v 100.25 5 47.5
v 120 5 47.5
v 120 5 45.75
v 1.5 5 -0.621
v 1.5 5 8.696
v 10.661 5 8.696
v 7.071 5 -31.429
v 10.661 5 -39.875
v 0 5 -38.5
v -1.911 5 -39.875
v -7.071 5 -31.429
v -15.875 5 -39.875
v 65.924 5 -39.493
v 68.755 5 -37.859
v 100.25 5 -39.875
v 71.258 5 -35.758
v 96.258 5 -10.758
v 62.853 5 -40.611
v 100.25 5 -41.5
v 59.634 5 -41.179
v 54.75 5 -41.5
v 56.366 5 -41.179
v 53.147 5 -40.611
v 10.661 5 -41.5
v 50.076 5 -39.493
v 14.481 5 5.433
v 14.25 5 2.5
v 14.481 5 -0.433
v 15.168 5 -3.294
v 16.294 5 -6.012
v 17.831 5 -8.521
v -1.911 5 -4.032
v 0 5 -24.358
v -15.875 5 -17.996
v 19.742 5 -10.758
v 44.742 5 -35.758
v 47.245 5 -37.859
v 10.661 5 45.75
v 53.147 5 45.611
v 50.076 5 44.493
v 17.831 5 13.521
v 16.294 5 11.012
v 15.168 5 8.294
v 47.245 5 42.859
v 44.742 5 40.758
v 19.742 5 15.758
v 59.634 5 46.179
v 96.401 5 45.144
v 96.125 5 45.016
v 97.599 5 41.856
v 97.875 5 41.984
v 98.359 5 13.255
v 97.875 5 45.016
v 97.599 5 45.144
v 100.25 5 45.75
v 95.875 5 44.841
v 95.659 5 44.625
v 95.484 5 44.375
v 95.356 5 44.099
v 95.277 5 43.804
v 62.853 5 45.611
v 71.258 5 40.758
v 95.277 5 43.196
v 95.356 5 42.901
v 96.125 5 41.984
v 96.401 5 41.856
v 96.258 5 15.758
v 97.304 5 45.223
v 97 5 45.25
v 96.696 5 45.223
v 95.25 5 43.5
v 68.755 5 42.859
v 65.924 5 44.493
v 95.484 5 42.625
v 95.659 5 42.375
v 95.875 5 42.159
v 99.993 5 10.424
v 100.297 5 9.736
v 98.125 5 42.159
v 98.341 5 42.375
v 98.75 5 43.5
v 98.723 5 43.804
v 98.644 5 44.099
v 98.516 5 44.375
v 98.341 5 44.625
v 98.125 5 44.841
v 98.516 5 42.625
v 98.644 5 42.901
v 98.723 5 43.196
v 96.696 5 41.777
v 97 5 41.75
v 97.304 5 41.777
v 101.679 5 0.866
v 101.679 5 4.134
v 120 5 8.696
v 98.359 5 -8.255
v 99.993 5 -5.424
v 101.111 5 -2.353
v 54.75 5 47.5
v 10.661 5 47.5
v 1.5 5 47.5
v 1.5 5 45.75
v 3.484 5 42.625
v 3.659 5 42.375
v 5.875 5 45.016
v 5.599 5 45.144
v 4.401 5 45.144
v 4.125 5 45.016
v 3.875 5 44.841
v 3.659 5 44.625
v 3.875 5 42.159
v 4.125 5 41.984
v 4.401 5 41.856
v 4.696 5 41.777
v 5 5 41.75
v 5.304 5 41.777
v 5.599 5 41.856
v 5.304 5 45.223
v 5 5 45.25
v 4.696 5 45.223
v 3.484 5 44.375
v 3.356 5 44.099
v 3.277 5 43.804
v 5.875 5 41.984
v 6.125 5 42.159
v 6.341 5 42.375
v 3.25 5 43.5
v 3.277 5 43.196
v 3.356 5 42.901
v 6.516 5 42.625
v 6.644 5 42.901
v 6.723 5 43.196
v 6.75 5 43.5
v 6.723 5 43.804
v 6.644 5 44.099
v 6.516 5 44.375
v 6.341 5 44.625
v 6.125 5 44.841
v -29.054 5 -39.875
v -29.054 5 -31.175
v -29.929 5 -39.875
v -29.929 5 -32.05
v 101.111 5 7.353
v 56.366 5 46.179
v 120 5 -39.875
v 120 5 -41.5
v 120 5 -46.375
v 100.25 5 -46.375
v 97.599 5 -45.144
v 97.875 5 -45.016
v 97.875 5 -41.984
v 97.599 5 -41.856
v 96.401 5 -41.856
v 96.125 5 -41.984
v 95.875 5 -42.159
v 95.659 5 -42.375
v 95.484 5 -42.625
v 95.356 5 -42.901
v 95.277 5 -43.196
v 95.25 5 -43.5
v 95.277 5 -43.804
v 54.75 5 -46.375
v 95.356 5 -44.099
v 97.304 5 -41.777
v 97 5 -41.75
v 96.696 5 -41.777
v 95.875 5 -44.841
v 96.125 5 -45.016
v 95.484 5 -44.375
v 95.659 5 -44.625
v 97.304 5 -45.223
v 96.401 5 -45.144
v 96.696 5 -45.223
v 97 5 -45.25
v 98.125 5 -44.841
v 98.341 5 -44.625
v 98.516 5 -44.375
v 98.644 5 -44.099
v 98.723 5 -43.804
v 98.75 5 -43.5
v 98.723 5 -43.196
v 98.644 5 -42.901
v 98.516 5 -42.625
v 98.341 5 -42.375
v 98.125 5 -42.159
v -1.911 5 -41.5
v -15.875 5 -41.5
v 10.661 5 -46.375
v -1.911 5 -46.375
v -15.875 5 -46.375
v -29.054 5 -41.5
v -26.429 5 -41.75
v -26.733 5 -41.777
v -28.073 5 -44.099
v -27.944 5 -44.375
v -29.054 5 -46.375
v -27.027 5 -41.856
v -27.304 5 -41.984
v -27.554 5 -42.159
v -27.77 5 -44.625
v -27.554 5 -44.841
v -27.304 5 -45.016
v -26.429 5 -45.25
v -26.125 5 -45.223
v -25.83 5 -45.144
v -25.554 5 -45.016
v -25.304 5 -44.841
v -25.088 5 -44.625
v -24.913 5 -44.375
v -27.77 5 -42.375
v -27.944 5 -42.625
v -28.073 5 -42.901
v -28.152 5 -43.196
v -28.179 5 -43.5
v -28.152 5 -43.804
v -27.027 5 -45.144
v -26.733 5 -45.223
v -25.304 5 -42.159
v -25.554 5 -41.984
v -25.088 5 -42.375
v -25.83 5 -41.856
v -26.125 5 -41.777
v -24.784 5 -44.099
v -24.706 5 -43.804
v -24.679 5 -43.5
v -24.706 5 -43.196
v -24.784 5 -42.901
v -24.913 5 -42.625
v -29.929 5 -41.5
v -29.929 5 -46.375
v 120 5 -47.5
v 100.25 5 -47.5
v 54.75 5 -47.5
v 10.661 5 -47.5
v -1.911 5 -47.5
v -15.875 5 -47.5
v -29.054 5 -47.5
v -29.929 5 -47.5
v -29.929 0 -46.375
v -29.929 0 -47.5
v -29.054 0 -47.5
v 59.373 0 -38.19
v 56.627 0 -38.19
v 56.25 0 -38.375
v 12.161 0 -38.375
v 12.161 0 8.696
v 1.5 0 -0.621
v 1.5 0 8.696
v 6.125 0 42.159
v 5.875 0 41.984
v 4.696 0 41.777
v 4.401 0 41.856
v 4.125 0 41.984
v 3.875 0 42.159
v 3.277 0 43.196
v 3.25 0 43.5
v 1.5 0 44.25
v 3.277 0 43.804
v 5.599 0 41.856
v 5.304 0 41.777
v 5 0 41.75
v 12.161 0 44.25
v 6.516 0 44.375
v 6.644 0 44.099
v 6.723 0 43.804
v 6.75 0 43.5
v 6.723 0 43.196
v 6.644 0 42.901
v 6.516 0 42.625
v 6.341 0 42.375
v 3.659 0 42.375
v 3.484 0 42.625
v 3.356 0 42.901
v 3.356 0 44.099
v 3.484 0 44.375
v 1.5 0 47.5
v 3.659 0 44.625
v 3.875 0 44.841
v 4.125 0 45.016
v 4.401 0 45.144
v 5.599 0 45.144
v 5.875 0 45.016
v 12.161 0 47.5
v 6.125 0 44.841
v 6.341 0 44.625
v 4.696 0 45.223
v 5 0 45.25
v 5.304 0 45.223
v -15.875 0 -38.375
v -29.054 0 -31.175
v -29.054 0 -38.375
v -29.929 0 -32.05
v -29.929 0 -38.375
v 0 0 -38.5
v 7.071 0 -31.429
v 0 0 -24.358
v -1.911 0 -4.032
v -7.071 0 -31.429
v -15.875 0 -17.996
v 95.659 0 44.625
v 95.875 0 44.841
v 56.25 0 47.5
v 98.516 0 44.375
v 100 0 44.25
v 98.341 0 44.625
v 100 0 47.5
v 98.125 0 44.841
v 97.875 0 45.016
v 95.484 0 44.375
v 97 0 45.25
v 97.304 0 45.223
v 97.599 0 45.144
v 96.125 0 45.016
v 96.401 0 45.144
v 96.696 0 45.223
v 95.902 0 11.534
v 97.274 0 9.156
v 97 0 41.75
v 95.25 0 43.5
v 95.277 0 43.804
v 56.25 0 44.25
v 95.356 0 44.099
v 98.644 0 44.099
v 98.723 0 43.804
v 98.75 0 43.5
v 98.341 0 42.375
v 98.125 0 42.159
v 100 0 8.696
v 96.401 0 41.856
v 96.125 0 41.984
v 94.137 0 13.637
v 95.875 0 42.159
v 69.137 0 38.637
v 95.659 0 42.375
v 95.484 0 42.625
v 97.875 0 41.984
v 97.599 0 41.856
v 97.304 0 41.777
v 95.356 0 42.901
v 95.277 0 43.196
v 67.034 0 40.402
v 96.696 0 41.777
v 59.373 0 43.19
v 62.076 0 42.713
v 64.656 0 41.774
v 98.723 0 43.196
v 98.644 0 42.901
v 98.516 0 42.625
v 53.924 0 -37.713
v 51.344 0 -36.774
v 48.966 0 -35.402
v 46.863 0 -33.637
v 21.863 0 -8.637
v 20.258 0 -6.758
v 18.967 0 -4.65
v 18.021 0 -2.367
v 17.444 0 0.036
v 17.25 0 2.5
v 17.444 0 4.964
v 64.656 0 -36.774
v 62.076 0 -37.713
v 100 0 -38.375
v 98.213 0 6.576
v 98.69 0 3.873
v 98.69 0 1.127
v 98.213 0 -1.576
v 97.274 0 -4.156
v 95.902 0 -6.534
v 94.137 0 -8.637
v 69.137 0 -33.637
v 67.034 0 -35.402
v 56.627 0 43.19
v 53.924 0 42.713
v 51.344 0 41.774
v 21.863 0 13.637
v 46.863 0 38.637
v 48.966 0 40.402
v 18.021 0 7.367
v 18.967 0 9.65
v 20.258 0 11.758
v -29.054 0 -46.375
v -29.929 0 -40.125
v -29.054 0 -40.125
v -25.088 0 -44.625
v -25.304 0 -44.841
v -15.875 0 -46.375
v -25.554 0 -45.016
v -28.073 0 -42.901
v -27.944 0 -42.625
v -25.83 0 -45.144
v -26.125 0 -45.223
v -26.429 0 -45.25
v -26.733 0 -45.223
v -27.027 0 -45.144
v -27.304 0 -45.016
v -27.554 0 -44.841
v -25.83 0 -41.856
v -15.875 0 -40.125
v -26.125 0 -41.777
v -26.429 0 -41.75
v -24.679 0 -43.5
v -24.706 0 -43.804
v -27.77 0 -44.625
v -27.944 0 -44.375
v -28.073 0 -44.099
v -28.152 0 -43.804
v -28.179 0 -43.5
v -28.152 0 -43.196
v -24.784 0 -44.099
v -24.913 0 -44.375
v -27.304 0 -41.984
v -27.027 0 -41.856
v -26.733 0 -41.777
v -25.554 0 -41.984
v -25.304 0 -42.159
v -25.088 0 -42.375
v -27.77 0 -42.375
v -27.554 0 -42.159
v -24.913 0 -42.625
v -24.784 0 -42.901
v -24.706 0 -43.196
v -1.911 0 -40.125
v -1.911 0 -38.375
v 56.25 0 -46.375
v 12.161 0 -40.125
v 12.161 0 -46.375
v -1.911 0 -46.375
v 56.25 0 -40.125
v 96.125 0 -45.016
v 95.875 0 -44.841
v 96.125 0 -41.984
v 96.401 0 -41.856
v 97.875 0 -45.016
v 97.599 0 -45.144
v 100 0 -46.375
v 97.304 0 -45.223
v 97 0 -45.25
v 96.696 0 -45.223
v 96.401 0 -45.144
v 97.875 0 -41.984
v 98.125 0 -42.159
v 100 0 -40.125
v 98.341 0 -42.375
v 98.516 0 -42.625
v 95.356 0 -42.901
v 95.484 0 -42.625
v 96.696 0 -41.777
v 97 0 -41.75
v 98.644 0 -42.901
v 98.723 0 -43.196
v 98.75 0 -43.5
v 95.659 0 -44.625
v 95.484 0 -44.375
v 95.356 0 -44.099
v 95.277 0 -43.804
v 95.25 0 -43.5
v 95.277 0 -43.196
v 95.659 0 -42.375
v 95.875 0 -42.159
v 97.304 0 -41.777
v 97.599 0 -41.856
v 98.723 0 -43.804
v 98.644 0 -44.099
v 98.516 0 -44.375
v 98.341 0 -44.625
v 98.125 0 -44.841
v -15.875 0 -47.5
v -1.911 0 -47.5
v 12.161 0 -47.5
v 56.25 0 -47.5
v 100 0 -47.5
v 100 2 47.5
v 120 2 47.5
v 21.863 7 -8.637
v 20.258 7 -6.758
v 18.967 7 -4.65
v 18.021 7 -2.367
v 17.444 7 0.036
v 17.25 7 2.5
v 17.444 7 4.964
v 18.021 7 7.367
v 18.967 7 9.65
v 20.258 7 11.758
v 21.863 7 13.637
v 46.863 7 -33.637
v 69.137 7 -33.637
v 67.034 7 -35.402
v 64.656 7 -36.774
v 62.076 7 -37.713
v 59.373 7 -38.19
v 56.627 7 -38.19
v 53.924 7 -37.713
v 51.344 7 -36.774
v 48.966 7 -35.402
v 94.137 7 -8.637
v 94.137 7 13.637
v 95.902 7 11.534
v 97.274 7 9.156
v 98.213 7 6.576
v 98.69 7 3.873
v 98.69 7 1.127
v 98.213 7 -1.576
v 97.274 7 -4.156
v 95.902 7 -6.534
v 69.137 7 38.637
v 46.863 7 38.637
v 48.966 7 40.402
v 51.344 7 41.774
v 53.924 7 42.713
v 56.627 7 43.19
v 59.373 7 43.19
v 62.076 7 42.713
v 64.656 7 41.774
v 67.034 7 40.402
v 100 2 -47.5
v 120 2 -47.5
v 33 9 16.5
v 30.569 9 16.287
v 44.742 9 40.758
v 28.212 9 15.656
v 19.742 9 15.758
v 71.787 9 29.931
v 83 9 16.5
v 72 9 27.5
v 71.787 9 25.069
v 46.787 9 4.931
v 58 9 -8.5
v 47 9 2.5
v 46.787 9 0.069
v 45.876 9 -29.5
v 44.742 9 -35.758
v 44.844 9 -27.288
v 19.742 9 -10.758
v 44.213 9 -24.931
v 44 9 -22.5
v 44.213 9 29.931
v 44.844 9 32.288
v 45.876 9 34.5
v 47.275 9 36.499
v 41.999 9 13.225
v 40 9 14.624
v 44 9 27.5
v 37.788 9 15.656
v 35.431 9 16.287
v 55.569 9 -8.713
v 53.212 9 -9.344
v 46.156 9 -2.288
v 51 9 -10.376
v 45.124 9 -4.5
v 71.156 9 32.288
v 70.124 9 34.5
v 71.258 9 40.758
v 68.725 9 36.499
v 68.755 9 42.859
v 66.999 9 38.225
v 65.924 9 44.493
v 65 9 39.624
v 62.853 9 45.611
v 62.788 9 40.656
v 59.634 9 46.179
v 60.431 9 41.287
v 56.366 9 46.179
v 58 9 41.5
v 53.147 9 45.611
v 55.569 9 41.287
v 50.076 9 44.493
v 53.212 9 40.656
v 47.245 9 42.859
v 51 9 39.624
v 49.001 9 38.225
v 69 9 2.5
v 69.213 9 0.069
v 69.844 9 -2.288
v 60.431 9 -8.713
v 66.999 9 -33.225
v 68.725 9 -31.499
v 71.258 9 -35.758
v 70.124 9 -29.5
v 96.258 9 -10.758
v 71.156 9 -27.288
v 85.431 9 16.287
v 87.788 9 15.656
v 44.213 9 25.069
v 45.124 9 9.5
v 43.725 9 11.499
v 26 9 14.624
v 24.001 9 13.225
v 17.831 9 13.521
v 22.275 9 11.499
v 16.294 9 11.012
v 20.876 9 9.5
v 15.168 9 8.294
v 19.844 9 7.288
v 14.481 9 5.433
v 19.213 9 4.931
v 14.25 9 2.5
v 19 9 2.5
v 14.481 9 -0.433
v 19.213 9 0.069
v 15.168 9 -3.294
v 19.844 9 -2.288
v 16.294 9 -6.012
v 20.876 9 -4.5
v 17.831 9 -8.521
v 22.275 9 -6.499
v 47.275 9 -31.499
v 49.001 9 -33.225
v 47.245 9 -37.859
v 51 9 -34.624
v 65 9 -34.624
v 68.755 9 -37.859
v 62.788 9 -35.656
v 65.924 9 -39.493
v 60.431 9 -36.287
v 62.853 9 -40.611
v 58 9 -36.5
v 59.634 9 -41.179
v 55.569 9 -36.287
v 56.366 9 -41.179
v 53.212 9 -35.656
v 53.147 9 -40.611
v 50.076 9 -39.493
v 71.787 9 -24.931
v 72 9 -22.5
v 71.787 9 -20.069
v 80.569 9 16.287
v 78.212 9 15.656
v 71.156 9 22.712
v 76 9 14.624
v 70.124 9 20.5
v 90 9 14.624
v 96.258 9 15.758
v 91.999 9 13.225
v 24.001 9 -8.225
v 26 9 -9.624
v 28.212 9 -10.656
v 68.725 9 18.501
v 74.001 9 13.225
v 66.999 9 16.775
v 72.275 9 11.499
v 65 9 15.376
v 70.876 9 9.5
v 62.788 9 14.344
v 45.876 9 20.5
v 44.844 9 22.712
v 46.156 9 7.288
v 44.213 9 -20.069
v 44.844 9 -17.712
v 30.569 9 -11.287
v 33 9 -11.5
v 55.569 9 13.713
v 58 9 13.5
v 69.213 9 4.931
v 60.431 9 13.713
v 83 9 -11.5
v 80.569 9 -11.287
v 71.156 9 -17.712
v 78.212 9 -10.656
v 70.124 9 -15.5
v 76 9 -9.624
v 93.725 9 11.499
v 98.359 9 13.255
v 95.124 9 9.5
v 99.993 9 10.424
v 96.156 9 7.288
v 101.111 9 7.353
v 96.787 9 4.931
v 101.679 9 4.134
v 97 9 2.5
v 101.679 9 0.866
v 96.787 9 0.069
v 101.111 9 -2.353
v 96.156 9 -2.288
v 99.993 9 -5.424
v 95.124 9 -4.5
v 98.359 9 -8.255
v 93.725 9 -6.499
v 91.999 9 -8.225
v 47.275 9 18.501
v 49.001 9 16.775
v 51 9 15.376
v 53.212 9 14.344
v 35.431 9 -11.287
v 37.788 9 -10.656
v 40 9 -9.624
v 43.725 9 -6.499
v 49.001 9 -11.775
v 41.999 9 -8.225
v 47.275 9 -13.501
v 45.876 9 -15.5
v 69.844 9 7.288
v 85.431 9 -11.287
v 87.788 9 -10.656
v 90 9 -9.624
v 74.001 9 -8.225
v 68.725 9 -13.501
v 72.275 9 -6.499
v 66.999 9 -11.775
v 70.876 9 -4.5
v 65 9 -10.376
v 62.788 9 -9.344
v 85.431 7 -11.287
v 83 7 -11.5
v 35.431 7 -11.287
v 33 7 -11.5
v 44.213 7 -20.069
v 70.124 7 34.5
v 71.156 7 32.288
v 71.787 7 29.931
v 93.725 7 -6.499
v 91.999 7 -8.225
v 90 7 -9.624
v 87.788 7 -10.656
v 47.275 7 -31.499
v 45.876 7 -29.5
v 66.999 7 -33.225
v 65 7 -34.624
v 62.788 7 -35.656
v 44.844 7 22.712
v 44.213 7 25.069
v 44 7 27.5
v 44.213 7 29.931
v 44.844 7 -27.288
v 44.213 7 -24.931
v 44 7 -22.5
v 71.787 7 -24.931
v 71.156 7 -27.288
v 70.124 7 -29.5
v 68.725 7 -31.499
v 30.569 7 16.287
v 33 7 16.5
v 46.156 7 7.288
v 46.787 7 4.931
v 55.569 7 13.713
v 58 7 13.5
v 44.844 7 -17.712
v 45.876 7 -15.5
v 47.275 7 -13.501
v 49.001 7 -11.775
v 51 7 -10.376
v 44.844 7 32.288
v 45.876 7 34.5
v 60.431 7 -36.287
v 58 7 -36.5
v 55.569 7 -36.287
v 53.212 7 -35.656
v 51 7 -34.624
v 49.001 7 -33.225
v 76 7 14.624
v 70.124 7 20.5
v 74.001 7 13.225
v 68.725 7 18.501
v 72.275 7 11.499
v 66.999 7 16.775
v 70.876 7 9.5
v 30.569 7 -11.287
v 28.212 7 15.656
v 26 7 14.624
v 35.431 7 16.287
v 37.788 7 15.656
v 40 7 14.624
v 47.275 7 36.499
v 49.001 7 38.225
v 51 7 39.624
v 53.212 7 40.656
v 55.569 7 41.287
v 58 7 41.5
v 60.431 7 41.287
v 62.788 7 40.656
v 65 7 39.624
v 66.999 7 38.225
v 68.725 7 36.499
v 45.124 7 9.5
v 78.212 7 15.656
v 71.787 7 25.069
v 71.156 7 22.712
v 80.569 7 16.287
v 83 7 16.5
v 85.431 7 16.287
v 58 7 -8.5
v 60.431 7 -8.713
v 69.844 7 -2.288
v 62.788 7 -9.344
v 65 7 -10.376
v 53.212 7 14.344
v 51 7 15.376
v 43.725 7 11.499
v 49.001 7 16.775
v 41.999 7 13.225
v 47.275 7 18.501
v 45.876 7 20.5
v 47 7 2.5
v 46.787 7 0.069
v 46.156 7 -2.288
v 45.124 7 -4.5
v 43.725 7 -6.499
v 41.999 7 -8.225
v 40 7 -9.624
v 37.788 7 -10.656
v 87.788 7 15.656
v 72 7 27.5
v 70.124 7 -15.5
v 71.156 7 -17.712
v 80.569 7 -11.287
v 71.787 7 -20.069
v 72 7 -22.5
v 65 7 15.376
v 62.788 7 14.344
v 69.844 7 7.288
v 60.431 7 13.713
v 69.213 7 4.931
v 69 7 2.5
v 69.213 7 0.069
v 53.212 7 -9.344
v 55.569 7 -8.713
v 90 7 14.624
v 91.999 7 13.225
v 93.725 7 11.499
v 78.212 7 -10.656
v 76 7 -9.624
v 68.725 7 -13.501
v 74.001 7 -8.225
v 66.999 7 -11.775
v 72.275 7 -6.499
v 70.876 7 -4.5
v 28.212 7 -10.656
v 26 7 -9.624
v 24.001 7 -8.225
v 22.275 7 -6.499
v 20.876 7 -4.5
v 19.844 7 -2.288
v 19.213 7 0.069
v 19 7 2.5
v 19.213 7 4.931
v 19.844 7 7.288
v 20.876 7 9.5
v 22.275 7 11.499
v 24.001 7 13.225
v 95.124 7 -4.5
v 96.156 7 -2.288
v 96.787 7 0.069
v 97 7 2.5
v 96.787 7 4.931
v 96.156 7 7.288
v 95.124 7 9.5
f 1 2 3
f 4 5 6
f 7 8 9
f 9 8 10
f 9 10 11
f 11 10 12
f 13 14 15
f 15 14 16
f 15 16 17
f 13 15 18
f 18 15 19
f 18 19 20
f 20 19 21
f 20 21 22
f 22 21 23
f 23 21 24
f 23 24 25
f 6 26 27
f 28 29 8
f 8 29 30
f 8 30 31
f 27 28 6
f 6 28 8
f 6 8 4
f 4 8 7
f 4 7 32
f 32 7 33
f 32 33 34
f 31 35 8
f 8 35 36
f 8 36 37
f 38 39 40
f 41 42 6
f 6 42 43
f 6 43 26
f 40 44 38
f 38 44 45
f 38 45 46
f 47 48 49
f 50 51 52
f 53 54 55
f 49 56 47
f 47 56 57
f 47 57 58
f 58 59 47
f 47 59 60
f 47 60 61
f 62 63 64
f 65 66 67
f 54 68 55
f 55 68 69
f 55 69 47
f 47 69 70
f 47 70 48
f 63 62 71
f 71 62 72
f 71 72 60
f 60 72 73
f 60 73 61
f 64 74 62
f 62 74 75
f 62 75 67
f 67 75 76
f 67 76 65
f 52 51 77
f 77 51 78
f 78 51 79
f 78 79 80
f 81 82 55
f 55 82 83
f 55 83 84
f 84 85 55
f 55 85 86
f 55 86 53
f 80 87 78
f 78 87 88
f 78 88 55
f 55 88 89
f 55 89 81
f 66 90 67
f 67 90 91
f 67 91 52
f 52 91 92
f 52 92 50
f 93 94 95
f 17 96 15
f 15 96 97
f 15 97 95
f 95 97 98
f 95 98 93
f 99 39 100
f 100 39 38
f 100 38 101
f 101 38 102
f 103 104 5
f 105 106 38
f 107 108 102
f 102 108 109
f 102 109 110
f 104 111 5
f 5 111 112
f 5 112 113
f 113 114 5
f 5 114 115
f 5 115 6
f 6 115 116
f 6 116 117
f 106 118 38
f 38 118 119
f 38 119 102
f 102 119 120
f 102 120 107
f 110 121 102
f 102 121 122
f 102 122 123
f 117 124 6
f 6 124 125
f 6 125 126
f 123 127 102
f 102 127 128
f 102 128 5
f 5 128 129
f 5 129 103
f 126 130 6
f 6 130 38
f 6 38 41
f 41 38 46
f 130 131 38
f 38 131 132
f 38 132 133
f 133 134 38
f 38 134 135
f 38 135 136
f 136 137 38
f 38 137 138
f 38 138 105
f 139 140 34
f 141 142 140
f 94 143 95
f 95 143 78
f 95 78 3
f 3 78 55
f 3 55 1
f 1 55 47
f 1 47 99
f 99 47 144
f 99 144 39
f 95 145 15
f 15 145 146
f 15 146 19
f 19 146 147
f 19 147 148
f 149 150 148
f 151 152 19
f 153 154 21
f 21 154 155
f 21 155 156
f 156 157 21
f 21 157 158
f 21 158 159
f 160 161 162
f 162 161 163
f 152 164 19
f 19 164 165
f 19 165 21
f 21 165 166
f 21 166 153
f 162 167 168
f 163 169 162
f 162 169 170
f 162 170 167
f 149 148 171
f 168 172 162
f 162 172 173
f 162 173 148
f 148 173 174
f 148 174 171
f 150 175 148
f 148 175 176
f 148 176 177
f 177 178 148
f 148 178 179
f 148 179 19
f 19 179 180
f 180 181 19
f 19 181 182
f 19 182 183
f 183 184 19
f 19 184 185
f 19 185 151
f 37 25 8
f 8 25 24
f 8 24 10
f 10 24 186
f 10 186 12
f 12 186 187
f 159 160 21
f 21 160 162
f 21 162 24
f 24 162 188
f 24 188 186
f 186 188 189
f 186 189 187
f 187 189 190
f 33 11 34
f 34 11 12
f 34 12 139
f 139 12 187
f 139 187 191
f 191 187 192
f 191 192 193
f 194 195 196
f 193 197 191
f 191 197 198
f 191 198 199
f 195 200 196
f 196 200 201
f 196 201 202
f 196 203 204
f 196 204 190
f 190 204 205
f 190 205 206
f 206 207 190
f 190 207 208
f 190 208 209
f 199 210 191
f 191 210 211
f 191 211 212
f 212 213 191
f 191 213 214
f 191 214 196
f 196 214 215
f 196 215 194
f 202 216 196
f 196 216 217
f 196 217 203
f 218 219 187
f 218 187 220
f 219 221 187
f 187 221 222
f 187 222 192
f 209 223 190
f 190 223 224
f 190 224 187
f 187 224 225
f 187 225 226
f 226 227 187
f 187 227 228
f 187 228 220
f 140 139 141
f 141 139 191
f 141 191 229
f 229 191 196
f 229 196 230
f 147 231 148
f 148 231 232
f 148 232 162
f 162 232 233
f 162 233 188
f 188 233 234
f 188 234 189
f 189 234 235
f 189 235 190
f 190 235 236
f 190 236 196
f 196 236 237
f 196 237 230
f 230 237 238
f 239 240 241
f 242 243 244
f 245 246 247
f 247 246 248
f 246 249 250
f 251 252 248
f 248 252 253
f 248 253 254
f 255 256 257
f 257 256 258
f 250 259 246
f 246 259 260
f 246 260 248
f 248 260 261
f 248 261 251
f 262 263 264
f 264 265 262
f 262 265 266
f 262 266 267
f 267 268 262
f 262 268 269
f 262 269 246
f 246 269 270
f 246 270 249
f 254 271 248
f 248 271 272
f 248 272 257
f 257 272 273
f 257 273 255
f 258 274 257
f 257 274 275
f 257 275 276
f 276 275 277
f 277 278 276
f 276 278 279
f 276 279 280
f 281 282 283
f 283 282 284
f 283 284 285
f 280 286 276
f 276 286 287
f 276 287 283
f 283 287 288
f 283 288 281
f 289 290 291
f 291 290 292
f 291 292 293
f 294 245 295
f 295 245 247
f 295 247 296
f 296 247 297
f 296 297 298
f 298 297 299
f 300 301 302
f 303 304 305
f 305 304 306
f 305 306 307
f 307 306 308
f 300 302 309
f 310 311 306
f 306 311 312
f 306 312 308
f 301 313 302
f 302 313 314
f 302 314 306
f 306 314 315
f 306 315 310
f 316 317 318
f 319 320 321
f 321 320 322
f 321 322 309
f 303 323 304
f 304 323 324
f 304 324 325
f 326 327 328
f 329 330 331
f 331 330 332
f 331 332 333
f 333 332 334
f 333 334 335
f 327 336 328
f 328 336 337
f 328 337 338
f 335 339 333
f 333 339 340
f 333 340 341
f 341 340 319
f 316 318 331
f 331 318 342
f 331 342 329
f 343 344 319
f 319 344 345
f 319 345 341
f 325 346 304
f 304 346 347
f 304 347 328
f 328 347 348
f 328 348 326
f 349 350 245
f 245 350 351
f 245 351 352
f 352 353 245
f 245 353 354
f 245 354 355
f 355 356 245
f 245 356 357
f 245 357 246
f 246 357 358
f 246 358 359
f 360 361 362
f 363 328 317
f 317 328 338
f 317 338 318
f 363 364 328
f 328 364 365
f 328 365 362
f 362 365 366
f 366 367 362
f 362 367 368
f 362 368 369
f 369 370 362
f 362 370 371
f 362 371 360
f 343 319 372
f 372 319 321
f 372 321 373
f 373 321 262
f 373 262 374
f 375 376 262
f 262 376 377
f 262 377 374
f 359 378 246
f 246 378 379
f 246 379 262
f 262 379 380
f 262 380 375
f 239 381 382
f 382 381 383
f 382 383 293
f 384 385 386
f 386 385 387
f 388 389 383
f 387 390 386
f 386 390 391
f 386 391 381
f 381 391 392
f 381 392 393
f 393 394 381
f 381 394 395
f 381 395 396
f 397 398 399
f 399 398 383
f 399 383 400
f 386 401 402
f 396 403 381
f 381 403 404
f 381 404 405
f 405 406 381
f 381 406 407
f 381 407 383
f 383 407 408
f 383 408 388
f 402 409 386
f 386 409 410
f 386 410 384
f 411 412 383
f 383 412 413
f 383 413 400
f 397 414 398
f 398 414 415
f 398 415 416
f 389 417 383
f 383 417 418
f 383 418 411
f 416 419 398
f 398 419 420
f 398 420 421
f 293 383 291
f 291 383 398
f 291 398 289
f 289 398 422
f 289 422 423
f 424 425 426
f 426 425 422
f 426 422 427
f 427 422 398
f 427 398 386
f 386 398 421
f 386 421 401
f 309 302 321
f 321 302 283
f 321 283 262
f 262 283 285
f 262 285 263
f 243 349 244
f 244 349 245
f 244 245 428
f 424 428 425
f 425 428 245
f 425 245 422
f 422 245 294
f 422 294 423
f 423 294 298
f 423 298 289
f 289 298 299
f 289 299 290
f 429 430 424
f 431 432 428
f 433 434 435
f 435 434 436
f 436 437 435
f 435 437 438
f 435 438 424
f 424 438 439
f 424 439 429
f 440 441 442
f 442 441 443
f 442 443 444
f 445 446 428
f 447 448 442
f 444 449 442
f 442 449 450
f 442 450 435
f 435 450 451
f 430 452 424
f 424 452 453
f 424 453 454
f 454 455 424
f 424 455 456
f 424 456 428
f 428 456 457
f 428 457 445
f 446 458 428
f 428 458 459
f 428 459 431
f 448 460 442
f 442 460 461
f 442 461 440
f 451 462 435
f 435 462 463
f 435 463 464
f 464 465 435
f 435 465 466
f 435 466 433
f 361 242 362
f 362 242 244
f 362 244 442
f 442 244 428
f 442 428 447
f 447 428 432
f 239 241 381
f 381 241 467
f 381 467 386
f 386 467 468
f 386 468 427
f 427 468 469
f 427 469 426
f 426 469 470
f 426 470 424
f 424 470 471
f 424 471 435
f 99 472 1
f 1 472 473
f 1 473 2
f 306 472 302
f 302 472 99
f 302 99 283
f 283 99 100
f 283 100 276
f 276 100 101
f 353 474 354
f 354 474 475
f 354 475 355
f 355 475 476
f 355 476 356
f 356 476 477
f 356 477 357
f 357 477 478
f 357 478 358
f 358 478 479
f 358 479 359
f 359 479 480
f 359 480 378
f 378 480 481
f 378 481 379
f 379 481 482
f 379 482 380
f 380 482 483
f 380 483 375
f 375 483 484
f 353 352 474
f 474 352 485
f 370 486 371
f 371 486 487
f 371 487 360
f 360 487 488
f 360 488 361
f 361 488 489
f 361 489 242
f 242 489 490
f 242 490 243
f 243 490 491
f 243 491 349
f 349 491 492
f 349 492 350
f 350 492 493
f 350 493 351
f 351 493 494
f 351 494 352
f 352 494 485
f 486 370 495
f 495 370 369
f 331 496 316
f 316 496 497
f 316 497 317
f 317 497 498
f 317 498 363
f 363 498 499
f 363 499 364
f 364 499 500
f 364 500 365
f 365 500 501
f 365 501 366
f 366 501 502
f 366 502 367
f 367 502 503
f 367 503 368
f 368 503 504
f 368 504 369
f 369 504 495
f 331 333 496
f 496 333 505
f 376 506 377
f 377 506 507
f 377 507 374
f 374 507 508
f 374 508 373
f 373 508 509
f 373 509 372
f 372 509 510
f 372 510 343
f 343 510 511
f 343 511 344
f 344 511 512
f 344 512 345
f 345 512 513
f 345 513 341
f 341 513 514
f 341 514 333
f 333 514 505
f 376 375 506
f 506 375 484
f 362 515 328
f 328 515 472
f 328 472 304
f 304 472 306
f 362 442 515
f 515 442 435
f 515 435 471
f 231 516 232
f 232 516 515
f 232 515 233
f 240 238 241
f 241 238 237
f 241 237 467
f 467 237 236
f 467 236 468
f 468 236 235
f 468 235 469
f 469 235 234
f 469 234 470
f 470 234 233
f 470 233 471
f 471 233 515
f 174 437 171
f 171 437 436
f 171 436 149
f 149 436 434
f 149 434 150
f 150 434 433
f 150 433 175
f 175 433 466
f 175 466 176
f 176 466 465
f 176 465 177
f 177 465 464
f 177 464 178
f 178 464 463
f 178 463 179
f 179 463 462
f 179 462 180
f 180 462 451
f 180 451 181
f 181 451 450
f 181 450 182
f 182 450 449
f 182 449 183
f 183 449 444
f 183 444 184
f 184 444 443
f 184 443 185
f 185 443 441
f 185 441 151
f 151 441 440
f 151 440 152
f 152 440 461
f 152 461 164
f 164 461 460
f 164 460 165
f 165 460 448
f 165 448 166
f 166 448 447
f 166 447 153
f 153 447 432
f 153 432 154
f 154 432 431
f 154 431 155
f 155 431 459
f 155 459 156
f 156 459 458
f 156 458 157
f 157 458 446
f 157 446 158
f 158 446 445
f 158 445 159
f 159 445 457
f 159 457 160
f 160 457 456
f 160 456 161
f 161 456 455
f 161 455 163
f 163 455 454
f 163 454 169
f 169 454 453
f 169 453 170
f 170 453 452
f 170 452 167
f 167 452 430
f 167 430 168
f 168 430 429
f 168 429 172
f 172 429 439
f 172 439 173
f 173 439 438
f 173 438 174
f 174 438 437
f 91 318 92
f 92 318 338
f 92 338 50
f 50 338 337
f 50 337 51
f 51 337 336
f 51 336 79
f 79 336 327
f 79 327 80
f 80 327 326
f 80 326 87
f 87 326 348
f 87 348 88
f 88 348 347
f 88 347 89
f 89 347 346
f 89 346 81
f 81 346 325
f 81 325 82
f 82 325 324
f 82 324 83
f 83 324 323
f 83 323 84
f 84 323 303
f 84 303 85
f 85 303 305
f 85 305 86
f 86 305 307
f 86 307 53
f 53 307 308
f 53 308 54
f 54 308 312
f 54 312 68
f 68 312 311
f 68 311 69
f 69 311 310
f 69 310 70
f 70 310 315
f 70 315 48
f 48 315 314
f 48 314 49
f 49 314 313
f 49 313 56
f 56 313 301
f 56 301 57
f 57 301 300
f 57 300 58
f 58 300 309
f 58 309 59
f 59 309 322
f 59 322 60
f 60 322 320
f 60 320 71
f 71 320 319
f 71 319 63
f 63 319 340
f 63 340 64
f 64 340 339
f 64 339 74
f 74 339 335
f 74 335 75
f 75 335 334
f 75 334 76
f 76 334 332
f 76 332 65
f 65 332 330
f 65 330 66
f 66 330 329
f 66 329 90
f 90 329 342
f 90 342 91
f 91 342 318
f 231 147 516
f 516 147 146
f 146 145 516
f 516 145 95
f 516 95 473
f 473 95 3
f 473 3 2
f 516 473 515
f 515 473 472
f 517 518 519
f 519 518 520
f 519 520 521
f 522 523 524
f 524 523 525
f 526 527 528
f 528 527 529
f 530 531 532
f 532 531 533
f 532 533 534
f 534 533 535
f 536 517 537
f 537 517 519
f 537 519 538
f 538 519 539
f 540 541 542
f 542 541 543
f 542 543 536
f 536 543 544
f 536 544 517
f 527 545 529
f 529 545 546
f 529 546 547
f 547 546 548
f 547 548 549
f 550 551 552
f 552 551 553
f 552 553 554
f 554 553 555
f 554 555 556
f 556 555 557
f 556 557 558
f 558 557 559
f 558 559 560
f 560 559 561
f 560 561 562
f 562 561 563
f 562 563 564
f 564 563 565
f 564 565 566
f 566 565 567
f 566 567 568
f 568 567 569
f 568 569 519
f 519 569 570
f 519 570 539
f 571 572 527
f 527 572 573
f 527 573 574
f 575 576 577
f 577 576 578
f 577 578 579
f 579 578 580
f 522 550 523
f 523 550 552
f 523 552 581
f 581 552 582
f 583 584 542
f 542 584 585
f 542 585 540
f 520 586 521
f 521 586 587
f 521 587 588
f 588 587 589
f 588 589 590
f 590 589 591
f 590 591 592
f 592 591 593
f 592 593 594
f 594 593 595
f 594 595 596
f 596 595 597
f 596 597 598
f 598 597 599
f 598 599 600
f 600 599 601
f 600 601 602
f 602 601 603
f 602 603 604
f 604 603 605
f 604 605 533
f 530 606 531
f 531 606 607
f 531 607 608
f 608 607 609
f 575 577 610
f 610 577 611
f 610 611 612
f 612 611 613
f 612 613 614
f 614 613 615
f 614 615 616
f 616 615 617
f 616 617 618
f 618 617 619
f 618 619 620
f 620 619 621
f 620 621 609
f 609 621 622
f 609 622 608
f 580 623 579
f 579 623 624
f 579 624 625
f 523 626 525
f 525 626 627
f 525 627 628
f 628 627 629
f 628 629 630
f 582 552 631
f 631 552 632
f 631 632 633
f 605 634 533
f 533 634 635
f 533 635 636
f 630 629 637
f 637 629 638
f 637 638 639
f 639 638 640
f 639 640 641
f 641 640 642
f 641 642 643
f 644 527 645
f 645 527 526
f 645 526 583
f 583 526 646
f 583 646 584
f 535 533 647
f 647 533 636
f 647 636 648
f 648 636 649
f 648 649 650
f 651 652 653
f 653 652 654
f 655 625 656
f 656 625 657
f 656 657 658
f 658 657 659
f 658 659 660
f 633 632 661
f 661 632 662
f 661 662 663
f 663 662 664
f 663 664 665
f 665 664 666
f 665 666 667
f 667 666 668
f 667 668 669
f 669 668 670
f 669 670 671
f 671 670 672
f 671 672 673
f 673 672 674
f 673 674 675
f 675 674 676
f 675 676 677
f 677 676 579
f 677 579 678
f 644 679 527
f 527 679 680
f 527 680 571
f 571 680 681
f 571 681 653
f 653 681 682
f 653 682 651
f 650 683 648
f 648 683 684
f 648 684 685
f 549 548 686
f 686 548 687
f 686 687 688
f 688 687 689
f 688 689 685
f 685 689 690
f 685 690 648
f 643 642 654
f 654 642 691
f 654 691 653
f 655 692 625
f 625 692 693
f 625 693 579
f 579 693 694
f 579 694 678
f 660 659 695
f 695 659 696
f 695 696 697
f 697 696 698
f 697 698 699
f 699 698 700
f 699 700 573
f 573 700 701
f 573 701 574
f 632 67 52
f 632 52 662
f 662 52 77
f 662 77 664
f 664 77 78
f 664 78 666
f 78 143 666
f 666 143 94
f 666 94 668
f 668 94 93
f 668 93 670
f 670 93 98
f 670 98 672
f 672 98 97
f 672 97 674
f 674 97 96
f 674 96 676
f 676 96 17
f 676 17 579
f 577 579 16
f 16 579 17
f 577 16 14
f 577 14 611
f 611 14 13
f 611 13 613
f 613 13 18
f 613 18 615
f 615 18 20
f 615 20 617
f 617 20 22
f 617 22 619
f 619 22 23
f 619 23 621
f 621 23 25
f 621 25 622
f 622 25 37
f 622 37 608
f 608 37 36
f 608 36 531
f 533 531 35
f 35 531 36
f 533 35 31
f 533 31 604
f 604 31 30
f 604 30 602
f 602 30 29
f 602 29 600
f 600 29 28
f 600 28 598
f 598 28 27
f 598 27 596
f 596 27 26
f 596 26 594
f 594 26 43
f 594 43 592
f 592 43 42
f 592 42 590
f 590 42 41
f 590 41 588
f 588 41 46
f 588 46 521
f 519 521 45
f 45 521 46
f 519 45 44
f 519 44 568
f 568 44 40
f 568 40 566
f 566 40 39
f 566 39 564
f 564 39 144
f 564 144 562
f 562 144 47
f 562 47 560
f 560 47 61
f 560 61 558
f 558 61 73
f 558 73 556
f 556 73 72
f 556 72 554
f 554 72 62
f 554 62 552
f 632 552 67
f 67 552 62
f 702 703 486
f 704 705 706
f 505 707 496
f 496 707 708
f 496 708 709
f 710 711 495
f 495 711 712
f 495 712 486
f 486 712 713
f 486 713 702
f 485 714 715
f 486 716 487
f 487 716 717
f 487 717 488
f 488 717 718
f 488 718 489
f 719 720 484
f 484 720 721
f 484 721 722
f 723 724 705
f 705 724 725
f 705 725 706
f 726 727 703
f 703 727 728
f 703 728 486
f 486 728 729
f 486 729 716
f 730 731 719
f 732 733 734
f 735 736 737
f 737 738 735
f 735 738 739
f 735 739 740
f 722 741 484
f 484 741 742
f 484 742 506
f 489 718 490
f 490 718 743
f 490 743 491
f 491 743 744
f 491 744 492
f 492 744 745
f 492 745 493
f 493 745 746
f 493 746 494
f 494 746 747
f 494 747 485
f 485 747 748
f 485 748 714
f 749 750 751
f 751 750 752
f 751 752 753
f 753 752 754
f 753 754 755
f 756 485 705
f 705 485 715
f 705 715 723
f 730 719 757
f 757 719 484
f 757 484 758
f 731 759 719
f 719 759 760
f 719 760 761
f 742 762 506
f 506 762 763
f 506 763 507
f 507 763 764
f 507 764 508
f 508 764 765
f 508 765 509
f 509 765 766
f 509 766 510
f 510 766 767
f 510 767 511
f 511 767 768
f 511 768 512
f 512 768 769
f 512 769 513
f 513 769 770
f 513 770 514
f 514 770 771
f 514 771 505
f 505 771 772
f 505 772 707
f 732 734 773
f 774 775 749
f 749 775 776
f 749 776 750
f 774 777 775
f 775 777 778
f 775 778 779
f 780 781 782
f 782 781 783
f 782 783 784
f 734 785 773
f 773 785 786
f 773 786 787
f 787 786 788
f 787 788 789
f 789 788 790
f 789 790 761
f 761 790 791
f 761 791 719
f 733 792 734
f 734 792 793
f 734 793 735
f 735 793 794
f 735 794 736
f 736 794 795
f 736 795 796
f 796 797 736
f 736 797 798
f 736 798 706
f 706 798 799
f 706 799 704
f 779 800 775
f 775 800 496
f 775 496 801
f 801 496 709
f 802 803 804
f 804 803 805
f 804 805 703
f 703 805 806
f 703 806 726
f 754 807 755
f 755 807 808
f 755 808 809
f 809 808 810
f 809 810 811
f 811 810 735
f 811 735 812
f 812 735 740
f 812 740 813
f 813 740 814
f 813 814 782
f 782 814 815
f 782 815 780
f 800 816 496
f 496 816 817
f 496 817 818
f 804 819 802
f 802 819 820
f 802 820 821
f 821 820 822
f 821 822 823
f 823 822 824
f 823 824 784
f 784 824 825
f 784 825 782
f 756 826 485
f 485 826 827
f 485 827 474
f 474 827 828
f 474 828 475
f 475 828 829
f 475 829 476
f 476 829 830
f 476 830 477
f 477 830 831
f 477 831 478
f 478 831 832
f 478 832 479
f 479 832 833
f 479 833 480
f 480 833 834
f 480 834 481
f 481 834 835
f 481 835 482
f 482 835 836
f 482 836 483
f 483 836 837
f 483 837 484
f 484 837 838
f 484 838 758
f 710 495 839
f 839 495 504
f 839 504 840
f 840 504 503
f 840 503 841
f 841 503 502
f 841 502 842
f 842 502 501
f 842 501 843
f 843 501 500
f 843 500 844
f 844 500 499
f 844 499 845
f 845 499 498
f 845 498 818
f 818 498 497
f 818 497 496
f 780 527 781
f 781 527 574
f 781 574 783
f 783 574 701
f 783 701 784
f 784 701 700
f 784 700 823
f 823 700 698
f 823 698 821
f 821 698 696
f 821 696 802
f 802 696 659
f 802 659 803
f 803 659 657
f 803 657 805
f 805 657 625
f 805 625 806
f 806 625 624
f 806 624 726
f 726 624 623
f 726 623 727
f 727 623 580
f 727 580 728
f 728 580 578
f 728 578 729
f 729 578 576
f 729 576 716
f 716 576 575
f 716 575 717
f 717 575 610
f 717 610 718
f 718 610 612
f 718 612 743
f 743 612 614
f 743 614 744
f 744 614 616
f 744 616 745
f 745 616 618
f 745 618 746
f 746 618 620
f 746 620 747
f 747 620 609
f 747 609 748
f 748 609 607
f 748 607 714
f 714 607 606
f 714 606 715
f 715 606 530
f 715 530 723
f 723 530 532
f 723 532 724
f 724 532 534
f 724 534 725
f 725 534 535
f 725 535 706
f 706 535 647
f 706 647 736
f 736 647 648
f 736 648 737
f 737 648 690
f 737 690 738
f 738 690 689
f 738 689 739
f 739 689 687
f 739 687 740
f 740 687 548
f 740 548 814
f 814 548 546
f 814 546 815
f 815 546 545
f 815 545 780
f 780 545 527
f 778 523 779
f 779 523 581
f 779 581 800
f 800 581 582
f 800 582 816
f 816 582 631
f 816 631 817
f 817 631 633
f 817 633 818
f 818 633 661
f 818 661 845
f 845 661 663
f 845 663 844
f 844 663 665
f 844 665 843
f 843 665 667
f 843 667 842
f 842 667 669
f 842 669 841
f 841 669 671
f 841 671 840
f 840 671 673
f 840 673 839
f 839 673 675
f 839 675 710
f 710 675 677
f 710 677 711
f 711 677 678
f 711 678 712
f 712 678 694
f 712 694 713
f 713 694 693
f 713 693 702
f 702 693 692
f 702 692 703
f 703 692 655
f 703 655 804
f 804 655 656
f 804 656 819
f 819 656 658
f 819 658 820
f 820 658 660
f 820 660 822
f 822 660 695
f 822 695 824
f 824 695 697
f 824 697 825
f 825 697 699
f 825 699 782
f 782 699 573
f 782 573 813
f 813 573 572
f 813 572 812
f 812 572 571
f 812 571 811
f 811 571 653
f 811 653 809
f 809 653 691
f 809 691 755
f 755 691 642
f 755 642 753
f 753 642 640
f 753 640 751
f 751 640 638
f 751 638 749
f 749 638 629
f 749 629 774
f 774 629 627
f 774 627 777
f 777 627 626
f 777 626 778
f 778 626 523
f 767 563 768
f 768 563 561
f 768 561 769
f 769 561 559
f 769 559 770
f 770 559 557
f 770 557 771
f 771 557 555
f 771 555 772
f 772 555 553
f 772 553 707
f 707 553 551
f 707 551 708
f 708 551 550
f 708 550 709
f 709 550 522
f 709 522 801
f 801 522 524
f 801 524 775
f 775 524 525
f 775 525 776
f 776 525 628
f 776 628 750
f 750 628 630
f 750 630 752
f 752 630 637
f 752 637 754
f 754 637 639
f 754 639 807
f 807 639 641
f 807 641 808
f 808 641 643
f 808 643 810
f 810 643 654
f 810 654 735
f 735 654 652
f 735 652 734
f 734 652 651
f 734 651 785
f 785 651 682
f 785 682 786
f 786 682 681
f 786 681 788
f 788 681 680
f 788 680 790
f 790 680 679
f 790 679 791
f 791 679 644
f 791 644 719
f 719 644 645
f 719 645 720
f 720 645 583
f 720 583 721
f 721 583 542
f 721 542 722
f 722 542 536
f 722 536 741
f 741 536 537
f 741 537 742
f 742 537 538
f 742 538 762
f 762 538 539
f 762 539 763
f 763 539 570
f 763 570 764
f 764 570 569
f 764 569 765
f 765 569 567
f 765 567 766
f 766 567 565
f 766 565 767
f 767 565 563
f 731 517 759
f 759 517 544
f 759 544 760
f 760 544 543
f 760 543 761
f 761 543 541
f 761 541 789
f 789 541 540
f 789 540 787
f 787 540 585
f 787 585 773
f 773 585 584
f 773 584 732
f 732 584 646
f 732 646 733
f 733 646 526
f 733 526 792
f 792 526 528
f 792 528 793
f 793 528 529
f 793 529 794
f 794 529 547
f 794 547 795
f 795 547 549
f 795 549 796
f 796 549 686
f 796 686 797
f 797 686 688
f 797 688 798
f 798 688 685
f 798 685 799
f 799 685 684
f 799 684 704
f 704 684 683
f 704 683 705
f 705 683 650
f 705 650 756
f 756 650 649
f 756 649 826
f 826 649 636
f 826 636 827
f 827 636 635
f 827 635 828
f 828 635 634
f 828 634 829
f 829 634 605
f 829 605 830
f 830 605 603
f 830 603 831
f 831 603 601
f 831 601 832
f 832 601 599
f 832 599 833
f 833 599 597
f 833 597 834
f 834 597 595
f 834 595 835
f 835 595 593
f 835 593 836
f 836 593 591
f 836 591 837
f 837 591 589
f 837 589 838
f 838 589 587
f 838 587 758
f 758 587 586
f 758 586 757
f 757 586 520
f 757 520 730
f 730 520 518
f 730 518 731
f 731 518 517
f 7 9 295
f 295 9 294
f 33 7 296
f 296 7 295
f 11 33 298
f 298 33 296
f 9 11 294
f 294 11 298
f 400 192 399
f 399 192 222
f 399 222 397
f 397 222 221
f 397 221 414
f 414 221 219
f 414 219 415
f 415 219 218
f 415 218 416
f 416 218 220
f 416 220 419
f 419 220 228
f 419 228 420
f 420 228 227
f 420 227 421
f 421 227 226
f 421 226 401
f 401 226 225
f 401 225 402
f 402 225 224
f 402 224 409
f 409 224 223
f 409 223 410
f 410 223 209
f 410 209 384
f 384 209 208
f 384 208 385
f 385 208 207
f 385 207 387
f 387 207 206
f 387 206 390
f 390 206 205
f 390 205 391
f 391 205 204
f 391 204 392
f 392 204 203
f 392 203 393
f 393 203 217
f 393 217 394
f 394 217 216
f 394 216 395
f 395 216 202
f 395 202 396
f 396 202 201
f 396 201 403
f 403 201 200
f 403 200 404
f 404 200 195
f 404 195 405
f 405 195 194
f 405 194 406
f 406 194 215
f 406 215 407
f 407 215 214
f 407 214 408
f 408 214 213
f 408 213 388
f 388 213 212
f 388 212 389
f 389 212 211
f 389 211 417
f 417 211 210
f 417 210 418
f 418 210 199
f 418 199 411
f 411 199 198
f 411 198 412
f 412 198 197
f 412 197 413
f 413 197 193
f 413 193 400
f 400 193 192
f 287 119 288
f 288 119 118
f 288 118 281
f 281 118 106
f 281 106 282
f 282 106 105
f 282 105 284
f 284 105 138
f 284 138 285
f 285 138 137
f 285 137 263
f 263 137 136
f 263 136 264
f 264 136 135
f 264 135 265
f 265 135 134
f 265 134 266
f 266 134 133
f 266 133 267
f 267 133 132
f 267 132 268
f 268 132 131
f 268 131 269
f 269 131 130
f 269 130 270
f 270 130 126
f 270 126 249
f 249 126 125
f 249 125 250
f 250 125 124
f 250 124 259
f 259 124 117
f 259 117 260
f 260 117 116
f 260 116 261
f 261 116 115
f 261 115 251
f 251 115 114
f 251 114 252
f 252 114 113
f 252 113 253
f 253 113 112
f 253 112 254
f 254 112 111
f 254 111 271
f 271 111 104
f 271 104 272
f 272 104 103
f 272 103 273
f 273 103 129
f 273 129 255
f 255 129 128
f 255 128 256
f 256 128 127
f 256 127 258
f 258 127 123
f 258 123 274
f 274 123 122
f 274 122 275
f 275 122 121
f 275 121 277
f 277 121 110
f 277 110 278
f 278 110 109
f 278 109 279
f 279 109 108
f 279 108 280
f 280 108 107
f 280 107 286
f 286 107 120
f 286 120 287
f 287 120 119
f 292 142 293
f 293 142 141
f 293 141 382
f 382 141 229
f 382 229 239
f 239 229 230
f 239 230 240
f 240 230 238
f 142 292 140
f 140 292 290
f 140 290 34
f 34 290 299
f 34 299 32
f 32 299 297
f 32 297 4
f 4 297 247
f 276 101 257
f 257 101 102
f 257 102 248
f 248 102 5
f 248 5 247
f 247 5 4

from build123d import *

# Parameters (mm, degrees)
SKETCH1_W           = 200
SKETCH1_H           = 95
SKETCH1_R           = 1.75
BOSS_EXTRUDE1_DEPTH = 5
SKETCH2_R           = 15.75
SKETCH2_R_2         = 12.5
CUT_EXTRUDE1_DEPTH  = 5
SKETCH4_W           = 16
SKETCH4_H           = 37
BOSS_EXTRUDE2_DEPTH = 4.2
SKETCH6_W           = 20
SKETCH6_H           = 95
BOSS_EXTRUDE3_DEPTH = 3
BOSS_EXTRUDE4_START = 4
BOSS_EXTRUDE4_DEPTH = 4
SKETCH9_R           = 14
BOSS_EXTRUDE5_DEPTH = 2
CUT_EXTRUDE2_DEPTH  = 5
SKETCH11_R          = 1.75
CUT_EXTRUDE3_DEPTH  = 10
SKETCH14_R          = 1.75
SKETCH14_R_2        = 12.5
CUT_EXTRUDE4_DEPTH  = 10
CUT_EXTRUDE5_DEPTH  = 5


with BuildPart() as part:
    # Sketch1 → Boss-Extrude1 (new body)
    with BuildSketch(Plane(origin=(0, 0, 0), x_dir=(1, 0, 0), z_dir=(0, 1, 0))):
        Rectangle(SKETCH1_W, SKETCH1_H)
        with Locations(Location((-96, 43.5, 0), (0, 0, 270))):
            Circle(SKETCH1_R, mode=Mode.SUBTRACT)
        with Locations(Location((-96, -43.5, 0), (0, 0, 270))):
            Circle(SKETCH1_R, mode=Mode.SUBTRACT)
        with Locations(Location((97, 43.5, 0), (0, 0, 270))):
            Circle(SKETCH1_R, mode=Mode.SUBTRACT)
        with Locations(Location((97, -43.5, 0), (0, 0, 270))):
            Circle(SKETCH1_R, mode=Mode.SUBTRACT)
    extrude(amount=BOSS_EXTRUDE1_DEPTH)

    # Sketch2 → Cut-Extrude1 (cut)
    with BuildSketch(Plane(origin=(0, 5, 0), x_dir=(1, 0, 0), z_dir=(0, 1, 0))):
        with Locations((33, -2.5)):
            Circle(SKETCH2_R)
        with BuildLine():
            ThreePointArc((48.75, -2.5), (39.02726406, -17.051102637), (21.863068196, -13.636931804))
            Line((21.863068196, -13.636931804), (46.863068196, -38.636931804))
            ThreePointArc((46.863068196, -38.636931804), (51.97273594, -12.948897363), (73.75, -27.5))
            ThreePointArc((73.75, -27.5), (72.551102637, -33.52726406), (69.136931804, -38.636931804))
            Line((69.136931804, -38.636931804), (94.136931804, -13.636931804))
            ThreePointArc((94.136931804, -13.636931804), (67.25, -2.5), (94.136931804, 8.636931804))
            Line((94.136931804, 8.636931804), (69.136931804, 33.636931804))
            ThreePointArc((69.136931804, 33.636931804), (72.551102637, 28.52726406), (73.75, 22.5))
            ThreePointArc((73.75, 22.5), (51.97273594, 7.948897363), (46.863068196, 33.636931804))
            Line((46.863068196, 33.636931804), (21.863068196, 8.636931804))
            ThreePointArc((21.863068196, 8.636931804), (39.02726406, 12.051102637), (48.75, -2.5))
        make_face()
        with Locations((58, -27.5)):
            Circle(SKETCH2_R)
        with Locations((83, -2.5)):
            Circle(SKETCH2_R)
        with Locations((58, 22.5)):
            Circle(SKETCH2_R)
        with Locations(Location((-82, -27.5, 0), (0, 0, 270))):
            Circle(SKETCH2_R_2)
    extrude(amount=-CUT_EXTRUDE1_DEPTH, mode=Mode.SUBTRACT)

    # Sketch4 → Boss-Extrude2 (add)
    with BuildSketch(Plane.XZ):
        with Locations((-82.5, -19.5)):
            Rectangle(SKETCH4_W, SKETCH4_H)
    extrude(amount=BOSS_EXTRUDE2_DEPTH)

    # Sketch6 → Boss-Extrude3 (add)
    with BuildSketch(Plane(origin=(0, 5, 0), x_dir=(1, 0, 0), z_dir=(0, 1, 0))):
        with Locations((-110, 0)):
            Rectangle(SKETCH6_W, SKETCH6_H)
        with Locations((110, 0)):
            Rectangle(SKETCH6_W, SKETCH6_H)
    extrude(amount=-BOSS_EXTRUDE3_DEPTH)

    # Sketch8 → Boss-Extrude4 (add)
    with BuildSketch(Plane(origin=(0, 5, 0), x_dir=(1, 0, 0), z_dir=(0, 1, 0)).offset(BOSS_EXTRUDE4_START)):
        with BuildLine():
            Line((71.258252147, -40.758252147), (96.258252147, -15.758252147))
            ThreePointArc((96.258252147, -15.758252147), (101.75, -2.5), (96.258252147, 10.758252147))
            Line((96.258252147, 10.758252147), (71.258252147, 35.758252147))
            ThreePointArc((71.258252147, 35.758252147), (58, 41.25), (44.741747853, 35.758252147))
            Line((44.741747853, 35.758252147), (19.741747853, 10.758252147))
            ThreePointArc((19.741747853, 10.758252147), (14.25, -2.5), (19.741747853, -15.758252147))
            Line((19.741747853, -15.758252147), (44.741747853, -40.758252147))
            ThreePointArc((44.741747853, -40.758252147), (58, -46.25), (71.258252147, -40.758252147))
        make_face()
        with BuildLine():
            Line((21.863068196, -13.636931804), (46.863068196, -38.636931804))
            ThreePointArc((46.863068196, -38.636931804), (58, -43.25), (69.136931804, -38.636931804))
            Line((69.136931804, -38.636931804), (94.136931804, -13.636931804))
            ThreePointArc((94.136931804, -13.636931804), (98.75, -2.5), (94.136931804, 8.636931804))
            Line((94.136931804, 8.636931804), (69.136931804, 33.636931804))
            ThreePointArc((69.136931804, 33.636931804), (58, 38.25), (46.863068196, 33.636931804))
            Line((46.863068196, 33.636931804), (21.863068196, 8.636931804))
            ThreePointArc((21.863068196, 8.636931804), (17.25, -2.5), (21.863068196, -13.636931804))
        make_face(mode=Mode.SUBTRACT)
    extrude(amount=-BOSS_EXTRUDE4_DEPTH)

    # Sketch9 → Boss-Extrude5 (add)
    with BuildSketch(Plane(origin=(0, 9, 0), x_dir=(1, 0, 0), z_dir=(0, 1, 0))):
        with BuildLine():
            Line((21.863068196, -13.636931804), (46.863068196, -38.636931804))
            ThreePointArc((46.863068196, -38.636931804), (58, -43.25), (69.136931804, -38.636931804))
            Line((69.136931804, -38.636931804), (94.136931804, -13.636931804))
            ThreePointArc((94.136931804, -13.636931804), (98.75, -2.5), (94.136931804, 8.636931804))
            Line((94.136931804, 8.636931804), (69.136931804, 33.636931804))
            ThreePointArc((69.136931804, 33.636931804), (58, 38.25), (46.863068196, 33.636931804))
            Line((46.863068196, 33.636931804), (21.863068196, 8.636931804))
            ThreePointArc((21.863068196, 8.636931804), (17.25, -2.5), (21.863068196, -13.636931804))
        make_face()
        with Locations(Location((58, 22.5, 0), (0, 0, 270))):
            Circle(SKETCH9_R, mode=Mode.SUBTRACT)
        with Locations(Location((83, -2.5, 0), (0, 0, 270))):
            Circle(SKETCH9_R, mode=Mode.SUBTRACT)
        with Locations(Location((58, -27.5, 0), (0, 0, 270))):
            Circle(SKETCH9_R, mode=Mode.SUBTRACT)
        with Locations(Location((33, -2.5, 0), (0, 0, 270))):
            Circle(SKETCH9_R, mode=Mode.SUBTRACT)
    extrude(amount=-BOSS_EXTRUDE5_DEPTH)

    # Sketch10 → Cut-Extrude2 (cut)
    with BuildSketch(Plane(origin=(0, 5, 0), x_dir=(1, 0, 0), z_dir=(0, 1, 0))):
        Polygon((0, 38.5), (-7.071067812, 31.428932188), (0, 24.357864376), (7.071067812, 31.428932188), align=None)
    extrude(amount=-CUT_EXTRUDE2_DEPTH, mode=Mode.SUBTRACT)

    # Sketch11 → Cut-Extrude3 (cut)
    with BuildSketch(Plane(origin=(0, 5, 0), x_dir=(1, 0, 0), z_dir=(0, 1, 0))):
        with Locations(Location((-36.428932188, 43.5, 0), (0, 0, 270))):
            Circle(SKETCH11_R)
        with Locations(Location((-26.428932188, 43.5, 0), (0, 0, 270))):
            Circle(SKETCH11_R)
        with Locations(Location((5, -43.5, 0), (0, 0, 270))):
            Circle(SKETCH11_R)
        with Locations(Location((-5, -43.5, 0), (0, 0, 270))):
            Circle(SKETCH11_R)
    extrude(amount=-CUT_EXTRUDE3_DEPTH, mode=Mode.SUBTRACT)

    # Sketch14 → Cut-Extrude4 (cut)
    # profile 1 of 2: a face of its own
    with BuildSketch(Plane(origin=(0, 5, 0), x_dir=(1, 0, 0), z_dir=(0, 1, 0))):
        Polygon((0, 0), (-31.428932188, 31.428932188), (-31.428932188, 47.5), (-120, 47.5), (-120, -47.5), (0, -47.5), align=None)
        with Locations((-96, -43.5)):
            Circle(SKETCH14_R, mode=Mode.SUBTRACT)
        with Locations((-82, -27.5)):
            Circle(SKETCH14_R_2, mode=Mode.SUBTRACT)
        with Locations((-5, -43.5)):
            Circle(SKETCH14_R, mode=Mode.SUBTRACT)
        with Locations((-96, 43.5)):
            Circle(SKETCH14_R, mode=Mode.SUBTRACT)
        with Locations((-36.428932188, 43.5)):
            Circle(SKETCH14_R, mode=Mode.SUBTRACT)
    # profile 2 of 2: a face of its own
    with BuildSketch(Plane(origin=(0, 5, 0), x_dir=(1, 0, 0), z_dir=(0, 1, 0))):
        with Locations((-82, -27.5)):
            Circle(SKETCH14_R_2)
    extrude(amount=-CUT_EXTRUDE4_DEPTH, mode=Mode.SUBTRACT)

    # Sketch15 → Cut-Extrude5 (cut)
    with BuildSketch(Plane(origin=(0, 5, 0), x_dir=(1, 0, 0), z_dir=(0, 1, 0))):
        Polygon((-29.928932188, 47.5), (-31.428932188, 47.5), (-31.428932188, 31.428932188), (0, 0), (0, -47.5), (1.5, -47.5), (1.5, 0.621320344), (-29.928932188, 32.050252532), align=None)
    extrude(amount=-CUT_EXTRUDE5_DEPTH, mode=Mode.SUBTRACT)


solid = part.part
